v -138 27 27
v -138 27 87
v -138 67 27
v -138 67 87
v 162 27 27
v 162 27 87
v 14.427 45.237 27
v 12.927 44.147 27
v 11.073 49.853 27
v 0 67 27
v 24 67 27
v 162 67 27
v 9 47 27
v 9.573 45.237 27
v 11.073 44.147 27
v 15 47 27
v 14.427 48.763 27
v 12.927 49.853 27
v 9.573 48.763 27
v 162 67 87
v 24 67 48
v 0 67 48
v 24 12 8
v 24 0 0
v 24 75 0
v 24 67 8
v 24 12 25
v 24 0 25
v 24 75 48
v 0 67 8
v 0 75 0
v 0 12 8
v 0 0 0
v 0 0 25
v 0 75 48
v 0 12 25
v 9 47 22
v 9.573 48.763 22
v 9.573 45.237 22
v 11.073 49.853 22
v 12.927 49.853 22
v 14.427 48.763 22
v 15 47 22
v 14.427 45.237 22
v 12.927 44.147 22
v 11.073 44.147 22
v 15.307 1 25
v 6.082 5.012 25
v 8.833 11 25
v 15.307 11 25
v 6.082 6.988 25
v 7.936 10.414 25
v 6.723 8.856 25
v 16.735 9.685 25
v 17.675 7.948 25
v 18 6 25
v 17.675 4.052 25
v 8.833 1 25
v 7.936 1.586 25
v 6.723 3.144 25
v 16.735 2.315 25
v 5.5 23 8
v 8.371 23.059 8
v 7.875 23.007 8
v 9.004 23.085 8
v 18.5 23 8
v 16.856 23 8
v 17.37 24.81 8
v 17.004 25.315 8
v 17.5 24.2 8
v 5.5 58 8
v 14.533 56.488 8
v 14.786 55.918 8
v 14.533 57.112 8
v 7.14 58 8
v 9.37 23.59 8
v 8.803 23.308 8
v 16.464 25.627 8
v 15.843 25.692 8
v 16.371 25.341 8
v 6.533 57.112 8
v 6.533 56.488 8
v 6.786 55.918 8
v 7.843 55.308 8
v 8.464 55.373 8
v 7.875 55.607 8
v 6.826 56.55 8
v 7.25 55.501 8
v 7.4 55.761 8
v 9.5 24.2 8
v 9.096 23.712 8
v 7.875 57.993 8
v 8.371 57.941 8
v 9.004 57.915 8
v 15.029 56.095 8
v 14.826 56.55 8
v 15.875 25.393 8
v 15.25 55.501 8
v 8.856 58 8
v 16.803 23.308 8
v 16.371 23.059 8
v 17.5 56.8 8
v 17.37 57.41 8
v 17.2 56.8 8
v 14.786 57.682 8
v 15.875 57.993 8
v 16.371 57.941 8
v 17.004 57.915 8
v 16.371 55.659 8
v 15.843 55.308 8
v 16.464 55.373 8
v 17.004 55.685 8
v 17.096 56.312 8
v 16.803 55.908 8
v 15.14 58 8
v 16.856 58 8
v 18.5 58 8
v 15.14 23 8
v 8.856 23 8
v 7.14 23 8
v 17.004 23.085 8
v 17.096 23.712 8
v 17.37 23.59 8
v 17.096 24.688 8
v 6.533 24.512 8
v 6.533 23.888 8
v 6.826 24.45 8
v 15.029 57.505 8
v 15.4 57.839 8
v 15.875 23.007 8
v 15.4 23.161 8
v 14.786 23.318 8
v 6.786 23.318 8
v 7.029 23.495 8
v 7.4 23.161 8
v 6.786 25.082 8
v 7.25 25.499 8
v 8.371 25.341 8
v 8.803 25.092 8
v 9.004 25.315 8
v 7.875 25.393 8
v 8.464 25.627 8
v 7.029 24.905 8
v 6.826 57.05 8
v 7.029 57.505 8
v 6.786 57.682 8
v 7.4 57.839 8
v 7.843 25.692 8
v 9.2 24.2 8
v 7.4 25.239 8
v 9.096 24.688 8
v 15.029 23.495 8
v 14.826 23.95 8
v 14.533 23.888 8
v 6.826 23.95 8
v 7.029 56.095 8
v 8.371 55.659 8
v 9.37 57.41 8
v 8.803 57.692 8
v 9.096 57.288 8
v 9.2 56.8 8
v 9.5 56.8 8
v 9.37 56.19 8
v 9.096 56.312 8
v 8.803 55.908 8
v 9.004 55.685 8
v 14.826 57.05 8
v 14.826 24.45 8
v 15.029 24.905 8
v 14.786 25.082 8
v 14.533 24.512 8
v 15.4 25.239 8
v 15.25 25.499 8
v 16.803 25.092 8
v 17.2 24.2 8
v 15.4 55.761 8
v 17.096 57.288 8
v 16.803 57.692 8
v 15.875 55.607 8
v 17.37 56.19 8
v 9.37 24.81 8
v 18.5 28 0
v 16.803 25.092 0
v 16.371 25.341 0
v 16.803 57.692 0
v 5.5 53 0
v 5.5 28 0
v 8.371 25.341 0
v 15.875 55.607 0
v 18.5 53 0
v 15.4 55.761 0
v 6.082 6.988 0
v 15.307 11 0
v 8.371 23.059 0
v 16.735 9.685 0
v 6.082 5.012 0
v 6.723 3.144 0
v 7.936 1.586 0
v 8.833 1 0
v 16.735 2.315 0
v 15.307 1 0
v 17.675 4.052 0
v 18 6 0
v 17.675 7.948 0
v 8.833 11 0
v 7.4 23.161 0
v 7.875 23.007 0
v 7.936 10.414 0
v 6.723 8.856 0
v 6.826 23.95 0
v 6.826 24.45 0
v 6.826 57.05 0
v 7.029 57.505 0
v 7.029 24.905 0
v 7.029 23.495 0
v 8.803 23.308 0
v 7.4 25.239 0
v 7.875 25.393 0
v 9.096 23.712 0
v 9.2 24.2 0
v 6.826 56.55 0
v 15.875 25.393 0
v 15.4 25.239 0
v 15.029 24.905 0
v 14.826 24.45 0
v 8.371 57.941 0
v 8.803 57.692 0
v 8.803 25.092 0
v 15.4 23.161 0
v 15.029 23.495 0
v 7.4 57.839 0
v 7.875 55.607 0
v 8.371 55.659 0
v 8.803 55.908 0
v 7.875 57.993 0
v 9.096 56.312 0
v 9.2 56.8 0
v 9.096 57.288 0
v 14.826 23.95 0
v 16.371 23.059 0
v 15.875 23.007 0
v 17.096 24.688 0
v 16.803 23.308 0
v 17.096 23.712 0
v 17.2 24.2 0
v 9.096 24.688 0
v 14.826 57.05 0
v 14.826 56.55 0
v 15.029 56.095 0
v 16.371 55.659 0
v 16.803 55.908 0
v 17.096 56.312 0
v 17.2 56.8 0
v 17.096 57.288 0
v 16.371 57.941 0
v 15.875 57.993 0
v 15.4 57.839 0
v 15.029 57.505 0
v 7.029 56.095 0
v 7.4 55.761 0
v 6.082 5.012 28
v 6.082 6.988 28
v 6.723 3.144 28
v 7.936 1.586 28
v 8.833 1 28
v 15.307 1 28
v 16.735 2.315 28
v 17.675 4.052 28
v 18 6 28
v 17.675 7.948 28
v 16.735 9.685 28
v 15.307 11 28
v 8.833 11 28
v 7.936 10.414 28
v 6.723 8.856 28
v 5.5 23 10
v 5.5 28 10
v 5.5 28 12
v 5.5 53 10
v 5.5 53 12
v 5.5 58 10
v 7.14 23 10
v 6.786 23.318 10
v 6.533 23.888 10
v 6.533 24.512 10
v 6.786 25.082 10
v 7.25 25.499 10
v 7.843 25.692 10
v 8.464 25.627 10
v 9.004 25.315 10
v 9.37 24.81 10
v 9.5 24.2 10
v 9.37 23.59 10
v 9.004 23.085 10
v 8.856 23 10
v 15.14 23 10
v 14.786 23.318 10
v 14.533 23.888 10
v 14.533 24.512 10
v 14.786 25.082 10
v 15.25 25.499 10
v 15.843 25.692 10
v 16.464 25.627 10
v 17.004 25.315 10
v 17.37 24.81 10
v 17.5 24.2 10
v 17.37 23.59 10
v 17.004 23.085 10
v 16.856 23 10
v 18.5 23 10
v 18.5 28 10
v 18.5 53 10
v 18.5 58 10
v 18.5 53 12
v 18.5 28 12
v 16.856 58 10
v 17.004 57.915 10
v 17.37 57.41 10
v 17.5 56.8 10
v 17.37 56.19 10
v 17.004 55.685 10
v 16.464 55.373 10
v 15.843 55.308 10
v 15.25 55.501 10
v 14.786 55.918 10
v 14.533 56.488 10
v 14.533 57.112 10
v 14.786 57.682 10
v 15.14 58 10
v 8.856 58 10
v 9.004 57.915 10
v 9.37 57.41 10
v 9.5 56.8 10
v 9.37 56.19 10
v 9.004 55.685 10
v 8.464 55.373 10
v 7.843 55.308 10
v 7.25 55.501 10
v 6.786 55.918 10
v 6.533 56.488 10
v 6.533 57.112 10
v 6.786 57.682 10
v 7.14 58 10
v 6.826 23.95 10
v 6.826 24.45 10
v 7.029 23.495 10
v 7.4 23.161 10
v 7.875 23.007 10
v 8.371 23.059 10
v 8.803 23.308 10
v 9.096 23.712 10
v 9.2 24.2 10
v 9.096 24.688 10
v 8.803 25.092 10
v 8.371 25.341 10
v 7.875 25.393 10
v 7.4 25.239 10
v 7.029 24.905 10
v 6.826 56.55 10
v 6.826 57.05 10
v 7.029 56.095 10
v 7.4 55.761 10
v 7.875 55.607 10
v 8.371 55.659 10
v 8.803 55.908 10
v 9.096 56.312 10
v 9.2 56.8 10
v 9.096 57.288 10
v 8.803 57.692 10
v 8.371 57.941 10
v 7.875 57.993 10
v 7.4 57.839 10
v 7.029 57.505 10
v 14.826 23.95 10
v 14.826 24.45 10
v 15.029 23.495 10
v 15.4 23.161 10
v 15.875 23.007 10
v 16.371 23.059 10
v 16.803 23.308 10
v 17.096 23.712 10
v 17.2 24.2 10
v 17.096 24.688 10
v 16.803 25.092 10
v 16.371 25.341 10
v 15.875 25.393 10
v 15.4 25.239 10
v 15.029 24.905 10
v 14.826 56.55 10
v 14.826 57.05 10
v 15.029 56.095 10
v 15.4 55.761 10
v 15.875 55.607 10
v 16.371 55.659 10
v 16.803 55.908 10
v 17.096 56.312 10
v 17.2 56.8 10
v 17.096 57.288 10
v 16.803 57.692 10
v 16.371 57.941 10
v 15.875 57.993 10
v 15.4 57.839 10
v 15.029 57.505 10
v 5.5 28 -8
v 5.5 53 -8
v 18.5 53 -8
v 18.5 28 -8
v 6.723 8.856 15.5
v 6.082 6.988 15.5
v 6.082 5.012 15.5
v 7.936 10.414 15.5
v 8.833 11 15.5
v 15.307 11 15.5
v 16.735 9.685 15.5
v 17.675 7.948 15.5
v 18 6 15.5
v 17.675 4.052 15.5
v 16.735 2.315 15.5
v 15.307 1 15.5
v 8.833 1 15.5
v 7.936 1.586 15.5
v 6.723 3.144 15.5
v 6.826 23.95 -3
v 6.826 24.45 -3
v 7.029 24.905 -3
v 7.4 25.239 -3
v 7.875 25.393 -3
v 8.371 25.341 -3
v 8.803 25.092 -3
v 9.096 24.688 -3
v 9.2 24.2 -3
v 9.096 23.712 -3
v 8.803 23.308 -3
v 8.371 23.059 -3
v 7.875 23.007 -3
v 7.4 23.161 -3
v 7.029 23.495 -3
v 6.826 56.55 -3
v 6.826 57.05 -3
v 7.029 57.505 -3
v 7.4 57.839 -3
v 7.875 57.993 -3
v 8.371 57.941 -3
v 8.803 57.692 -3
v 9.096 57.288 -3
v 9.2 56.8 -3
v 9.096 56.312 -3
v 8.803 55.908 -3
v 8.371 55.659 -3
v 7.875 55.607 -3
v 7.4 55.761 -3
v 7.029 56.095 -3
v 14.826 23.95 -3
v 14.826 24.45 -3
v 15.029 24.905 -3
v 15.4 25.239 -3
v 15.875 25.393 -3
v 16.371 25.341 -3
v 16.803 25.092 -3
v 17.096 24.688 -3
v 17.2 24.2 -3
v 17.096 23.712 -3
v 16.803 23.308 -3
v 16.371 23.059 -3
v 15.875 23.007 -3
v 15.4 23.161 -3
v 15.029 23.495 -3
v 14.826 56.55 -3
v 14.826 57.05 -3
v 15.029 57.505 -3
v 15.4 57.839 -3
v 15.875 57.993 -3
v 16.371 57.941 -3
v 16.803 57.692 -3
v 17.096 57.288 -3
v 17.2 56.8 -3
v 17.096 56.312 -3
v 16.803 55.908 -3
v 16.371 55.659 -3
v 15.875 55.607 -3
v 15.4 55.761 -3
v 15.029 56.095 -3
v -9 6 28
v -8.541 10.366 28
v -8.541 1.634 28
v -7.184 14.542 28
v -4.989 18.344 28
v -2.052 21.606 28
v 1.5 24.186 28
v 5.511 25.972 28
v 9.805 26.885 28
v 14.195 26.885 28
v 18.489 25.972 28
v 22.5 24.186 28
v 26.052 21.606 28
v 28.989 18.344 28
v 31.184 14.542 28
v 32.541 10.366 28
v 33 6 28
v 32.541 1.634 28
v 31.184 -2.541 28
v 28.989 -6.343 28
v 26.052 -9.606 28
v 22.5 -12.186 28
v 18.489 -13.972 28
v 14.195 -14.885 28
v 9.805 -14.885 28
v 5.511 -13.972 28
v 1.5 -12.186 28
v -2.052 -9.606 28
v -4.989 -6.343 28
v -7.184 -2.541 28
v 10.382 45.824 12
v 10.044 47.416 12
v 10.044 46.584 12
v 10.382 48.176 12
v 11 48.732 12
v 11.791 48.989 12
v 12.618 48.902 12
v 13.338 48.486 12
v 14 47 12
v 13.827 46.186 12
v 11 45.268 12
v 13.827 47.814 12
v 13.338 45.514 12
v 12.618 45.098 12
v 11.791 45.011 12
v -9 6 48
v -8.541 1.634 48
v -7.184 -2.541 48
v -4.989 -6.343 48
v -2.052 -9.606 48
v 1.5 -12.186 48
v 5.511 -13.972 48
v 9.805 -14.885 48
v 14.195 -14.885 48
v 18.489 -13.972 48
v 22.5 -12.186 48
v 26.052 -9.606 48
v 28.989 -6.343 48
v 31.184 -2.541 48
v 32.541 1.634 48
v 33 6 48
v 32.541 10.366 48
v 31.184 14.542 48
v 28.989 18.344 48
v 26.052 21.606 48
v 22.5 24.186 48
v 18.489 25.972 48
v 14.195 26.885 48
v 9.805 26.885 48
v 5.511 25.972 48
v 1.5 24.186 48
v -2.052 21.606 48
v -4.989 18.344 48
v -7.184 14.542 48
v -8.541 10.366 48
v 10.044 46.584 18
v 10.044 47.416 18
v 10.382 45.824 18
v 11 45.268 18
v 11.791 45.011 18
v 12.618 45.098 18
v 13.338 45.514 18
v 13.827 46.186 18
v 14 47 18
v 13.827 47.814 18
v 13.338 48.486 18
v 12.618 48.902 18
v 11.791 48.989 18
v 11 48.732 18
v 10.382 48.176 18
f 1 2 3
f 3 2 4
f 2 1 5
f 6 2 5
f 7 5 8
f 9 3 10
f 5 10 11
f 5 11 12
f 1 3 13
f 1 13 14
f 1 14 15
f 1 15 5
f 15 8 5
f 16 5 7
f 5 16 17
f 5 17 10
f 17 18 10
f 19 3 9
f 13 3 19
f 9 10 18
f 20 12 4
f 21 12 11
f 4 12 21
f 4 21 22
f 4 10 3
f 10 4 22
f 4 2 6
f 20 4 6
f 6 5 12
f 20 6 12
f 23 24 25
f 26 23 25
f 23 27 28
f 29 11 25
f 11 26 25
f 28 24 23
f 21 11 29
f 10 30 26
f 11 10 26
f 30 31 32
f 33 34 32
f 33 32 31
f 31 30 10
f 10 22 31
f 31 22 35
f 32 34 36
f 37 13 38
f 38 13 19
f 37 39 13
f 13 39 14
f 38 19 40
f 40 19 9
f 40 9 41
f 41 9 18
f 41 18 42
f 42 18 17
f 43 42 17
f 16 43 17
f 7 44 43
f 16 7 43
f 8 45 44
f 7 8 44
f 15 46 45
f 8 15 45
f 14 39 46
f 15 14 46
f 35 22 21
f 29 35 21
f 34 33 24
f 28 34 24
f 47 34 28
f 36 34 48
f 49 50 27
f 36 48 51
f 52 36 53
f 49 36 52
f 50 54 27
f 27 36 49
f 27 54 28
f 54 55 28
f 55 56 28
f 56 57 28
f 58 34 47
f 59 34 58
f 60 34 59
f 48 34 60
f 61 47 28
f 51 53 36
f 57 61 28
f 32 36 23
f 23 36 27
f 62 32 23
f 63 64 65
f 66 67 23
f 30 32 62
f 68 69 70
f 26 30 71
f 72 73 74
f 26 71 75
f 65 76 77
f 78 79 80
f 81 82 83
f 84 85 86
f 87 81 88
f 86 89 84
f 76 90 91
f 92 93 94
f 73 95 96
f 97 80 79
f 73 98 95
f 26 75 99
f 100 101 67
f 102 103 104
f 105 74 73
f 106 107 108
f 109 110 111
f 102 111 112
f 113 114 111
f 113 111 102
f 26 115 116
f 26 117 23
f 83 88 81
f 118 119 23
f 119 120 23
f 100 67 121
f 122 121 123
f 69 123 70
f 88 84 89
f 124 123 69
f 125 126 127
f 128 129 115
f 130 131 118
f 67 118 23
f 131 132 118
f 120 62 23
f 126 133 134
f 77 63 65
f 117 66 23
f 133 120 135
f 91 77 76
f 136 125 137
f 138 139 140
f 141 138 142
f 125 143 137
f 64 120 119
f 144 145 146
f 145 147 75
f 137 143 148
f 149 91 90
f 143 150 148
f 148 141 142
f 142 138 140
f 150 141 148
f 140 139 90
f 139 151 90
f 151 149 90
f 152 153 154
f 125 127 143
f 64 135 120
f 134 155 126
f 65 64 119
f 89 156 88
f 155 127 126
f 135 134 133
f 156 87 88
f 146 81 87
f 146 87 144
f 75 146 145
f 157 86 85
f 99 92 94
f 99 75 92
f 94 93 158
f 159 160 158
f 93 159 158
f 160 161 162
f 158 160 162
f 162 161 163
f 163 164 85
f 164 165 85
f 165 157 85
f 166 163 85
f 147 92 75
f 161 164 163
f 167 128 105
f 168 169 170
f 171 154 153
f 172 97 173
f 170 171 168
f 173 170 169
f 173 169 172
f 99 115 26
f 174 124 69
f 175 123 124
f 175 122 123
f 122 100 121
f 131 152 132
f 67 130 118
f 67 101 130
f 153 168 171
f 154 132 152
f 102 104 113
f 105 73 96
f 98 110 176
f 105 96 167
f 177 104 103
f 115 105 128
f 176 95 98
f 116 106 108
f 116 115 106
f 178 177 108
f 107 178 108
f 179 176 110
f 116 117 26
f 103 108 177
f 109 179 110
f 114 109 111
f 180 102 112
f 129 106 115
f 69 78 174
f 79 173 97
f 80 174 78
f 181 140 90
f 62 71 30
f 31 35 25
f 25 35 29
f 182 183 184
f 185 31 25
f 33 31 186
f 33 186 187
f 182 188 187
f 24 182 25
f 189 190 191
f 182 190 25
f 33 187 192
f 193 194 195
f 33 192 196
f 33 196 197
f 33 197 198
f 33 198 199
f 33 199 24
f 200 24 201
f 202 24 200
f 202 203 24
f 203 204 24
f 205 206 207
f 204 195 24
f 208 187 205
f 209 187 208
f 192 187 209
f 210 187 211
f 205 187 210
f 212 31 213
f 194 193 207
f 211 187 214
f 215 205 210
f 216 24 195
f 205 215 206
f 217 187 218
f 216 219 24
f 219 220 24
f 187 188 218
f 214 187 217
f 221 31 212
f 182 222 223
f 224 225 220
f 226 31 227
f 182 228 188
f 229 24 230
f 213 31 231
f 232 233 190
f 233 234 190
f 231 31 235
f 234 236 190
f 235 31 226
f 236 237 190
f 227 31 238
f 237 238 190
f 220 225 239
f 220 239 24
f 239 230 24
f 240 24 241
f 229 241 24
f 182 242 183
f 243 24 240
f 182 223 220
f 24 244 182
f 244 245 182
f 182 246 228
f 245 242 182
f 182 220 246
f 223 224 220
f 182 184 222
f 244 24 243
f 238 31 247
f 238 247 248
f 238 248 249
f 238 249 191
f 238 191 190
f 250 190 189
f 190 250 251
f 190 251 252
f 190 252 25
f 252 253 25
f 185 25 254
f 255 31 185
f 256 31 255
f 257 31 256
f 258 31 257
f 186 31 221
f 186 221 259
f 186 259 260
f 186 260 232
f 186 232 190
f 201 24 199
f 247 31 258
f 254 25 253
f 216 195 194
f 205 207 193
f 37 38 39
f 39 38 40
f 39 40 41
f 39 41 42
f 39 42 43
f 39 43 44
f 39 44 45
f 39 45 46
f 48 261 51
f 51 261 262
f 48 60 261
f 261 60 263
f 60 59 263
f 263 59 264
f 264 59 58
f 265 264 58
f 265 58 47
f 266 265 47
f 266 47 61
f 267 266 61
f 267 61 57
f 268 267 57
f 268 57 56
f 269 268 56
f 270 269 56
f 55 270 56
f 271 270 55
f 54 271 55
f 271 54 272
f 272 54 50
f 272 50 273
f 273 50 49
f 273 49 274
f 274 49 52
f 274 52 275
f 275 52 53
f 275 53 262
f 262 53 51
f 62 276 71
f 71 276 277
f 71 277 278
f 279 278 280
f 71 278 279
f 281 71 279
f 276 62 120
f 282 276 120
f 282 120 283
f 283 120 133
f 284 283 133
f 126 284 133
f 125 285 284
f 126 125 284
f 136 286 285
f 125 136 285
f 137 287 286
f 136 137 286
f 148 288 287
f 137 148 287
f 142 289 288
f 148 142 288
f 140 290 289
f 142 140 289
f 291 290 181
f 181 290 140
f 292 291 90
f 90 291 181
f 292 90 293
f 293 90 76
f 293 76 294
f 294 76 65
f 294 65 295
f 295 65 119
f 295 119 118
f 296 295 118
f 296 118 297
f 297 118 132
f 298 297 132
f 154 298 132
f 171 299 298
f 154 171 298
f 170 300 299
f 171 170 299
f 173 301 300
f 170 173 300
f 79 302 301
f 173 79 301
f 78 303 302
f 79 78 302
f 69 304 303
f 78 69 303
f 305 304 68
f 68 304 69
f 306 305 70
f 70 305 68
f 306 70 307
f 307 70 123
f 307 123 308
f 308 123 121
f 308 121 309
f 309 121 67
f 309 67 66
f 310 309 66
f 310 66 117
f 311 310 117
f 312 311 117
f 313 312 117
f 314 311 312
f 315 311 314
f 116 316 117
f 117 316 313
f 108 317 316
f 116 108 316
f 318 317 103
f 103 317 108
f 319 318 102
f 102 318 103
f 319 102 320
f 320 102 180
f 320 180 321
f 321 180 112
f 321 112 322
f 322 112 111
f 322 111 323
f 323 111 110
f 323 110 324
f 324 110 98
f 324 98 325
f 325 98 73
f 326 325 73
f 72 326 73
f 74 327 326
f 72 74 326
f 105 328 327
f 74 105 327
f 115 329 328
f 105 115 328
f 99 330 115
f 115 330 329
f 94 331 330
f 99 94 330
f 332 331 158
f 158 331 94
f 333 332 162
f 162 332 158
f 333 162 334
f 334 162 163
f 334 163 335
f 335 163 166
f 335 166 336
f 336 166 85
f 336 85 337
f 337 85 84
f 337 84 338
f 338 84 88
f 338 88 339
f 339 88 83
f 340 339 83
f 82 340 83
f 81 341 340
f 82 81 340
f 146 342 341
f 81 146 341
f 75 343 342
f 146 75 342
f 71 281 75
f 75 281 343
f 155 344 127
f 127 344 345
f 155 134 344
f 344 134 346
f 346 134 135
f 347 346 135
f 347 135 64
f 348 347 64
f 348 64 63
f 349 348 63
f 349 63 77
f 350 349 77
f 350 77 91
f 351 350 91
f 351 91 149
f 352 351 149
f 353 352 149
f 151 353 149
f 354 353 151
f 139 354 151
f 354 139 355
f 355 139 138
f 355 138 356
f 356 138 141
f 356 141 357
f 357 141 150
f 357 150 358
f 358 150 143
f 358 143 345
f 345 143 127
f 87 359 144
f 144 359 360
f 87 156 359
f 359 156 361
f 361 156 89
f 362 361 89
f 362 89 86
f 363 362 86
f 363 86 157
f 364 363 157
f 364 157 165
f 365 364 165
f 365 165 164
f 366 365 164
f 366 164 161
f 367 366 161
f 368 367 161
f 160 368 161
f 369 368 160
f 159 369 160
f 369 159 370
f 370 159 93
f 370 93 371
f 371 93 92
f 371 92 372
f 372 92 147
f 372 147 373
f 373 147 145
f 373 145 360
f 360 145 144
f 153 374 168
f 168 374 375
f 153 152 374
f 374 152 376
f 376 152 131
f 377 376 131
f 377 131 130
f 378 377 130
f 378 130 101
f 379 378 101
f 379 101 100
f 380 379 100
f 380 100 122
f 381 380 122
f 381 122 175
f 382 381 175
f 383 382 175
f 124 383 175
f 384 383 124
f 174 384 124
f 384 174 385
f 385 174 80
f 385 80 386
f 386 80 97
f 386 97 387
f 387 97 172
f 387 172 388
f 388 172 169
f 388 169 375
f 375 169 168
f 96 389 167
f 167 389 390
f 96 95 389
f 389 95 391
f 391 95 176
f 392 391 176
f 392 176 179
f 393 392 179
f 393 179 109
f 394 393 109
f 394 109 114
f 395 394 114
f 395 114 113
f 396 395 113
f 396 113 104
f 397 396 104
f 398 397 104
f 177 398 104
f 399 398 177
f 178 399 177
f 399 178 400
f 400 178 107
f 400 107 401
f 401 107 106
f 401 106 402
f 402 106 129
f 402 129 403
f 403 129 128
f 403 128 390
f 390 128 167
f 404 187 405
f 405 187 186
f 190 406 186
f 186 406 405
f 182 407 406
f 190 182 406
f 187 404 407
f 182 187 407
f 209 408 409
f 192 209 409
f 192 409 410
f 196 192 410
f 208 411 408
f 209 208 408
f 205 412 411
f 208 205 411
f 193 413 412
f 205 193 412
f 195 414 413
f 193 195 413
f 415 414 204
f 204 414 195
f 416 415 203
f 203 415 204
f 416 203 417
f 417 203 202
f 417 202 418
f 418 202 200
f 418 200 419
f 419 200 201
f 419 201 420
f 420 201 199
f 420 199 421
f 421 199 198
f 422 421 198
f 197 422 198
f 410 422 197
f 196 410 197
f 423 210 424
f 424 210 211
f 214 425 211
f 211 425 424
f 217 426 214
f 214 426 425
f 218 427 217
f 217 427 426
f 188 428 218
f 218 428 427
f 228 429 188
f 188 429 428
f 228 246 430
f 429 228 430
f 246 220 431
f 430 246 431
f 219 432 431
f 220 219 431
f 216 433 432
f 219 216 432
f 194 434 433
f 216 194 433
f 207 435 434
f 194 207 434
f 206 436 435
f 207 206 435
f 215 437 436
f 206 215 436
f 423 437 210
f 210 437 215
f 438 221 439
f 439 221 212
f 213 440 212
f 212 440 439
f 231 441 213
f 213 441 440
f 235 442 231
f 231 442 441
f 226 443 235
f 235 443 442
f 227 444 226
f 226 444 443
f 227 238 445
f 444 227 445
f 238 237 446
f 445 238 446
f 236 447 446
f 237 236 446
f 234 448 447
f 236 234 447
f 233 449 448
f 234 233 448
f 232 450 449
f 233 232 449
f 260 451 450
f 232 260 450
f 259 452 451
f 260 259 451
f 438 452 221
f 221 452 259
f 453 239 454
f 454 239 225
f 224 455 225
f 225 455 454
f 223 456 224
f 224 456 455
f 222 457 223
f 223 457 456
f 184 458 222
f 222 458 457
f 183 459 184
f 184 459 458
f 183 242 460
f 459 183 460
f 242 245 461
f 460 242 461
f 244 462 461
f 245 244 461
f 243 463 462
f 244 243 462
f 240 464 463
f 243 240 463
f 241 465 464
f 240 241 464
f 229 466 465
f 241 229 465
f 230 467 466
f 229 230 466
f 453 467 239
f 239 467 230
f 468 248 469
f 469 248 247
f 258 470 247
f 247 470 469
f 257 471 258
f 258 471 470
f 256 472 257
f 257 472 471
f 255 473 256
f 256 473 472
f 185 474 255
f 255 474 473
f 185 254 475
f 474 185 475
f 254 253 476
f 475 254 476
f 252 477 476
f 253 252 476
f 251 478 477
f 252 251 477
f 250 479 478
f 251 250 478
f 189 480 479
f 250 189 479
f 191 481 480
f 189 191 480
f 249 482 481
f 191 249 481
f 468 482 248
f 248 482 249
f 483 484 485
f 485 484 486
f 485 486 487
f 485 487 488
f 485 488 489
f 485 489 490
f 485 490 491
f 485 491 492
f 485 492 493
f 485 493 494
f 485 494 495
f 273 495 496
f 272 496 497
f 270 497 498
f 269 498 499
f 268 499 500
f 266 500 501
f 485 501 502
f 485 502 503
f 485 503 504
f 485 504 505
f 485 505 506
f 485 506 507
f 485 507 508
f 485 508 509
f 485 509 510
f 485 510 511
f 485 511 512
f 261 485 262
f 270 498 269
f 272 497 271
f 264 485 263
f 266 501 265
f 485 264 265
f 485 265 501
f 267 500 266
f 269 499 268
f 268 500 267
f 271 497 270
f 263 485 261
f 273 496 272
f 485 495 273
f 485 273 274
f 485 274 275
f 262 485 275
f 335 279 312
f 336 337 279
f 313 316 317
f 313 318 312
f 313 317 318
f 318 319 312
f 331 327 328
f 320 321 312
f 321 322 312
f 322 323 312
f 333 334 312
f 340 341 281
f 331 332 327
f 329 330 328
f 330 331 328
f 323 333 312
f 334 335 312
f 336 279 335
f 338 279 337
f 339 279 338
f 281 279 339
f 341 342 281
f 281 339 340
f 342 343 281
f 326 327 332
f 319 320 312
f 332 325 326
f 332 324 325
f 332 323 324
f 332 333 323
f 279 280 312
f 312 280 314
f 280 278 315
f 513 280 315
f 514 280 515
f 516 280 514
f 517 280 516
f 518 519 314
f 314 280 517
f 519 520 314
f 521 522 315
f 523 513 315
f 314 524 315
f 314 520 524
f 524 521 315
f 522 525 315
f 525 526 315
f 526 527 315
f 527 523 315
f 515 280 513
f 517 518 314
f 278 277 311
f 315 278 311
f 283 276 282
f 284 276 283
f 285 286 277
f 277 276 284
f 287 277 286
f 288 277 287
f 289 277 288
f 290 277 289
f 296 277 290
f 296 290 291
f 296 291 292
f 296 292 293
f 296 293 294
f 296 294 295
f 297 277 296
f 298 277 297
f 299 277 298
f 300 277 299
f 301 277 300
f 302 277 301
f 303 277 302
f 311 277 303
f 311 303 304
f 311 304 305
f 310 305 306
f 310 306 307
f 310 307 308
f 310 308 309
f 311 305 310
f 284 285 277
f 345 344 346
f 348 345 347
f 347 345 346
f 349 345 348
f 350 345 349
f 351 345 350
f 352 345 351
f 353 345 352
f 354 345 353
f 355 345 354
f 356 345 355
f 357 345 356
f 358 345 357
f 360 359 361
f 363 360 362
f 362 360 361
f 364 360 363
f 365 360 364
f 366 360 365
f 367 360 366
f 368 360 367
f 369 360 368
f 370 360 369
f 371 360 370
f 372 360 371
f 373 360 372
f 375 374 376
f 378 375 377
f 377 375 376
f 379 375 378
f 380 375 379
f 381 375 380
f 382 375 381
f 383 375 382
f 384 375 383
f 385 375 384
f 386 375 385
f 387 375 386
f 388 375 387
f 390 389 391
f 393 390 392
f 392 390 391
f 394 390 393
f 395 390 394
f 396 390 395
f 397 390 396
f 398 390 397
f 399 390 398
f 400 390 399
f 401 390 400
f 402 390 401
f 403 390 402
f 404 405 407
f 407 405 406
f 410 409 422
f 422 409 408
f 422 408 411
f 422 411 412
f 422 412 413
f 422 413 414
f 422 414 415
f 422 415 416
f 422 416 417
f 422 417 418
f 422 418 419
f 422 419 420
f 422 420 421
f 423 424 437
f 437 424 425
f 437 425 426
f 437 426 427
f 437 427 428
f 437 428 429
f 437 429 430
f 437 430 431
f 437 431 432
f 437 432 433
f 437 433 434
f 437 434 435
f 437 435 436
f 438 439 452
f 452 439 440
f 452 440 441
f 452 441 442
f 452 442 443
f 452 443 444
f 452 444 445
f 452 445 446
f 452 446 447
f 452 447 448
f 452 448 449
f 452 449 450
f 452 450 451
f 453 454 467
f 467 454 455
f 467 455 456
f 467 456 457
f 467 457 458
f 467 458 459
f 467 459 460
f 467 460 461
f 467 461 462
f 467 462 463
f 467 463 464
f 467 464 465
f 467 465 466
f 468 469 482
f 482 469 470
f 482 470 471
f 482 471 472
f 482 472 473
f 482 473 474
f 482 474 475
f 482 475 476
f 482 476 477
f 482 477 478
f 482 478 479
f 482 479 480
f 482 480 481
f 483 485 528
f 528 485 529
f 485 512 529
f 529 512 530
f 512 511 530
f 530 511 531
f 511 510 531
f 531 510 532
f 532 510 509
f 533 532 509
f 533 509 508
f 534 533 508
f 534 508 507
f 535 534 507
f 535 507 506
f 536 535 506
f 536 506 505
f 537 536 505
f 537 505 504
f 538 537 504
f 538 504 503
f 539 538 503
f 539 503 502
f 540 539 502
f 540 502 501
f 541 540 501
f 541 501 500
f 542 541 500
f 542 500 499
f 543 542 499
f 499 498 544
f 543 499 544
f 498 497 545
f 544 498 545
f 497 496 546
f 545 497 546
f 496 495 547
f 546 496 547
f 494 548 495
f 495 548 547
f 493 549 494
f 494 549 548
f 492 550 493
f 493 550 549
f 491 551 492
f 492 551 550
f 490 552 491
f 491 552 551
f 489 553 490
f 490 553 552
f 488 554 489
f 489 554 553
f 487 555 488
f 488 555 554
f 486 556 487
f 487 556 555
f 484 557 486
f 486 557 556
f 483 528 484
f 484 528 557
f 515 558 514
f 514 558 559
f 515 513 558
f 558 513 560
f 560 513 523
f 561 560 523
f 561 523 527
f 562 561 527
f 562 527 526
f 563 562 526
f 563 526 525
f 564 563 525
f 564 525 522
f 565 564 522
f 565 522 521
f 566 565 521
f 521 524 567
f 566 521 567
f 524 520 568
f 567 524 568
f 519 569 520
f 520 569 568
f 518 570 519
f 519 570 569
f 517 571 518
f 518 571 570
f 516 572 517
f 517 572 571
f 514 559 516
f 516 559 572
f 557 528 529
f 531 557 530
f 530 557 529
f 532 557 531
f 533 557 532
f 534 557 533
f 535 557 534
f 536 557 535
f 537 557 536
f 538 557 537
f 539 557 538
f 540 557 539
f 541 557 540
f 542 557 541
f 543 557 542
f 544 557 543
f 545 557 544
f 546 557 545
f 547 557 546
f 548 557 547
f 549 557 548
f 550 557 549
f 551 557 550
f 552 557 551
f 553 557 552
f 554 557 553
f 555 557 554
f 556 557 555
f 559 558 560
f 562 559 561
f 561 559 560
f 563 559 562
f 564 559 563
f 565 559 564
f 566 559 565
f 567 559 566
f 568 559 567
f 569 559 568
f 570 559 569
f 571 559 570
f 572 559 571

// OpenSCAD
//
// settings
//
show_extras = true;

motor_mountsize_x = 24;
motor_mountsize_y = 12;
motor_mountsize_z = 25;

motor_diameter = 12;
motor_flat = 10;

track_width = 40;

tire_diameter = 42;
tire_height = 20;
motor_offset_z = 3;
motor_height = 12;

undercarrage_thickness = 8; // does not scale well
undercarrage_length = track_width - motor_mountsize_y/2 + tire_diameter/2;

support_beem_thickness = 8;

// 
resolution = 15;

module motor_slot(slot_height) {
	intersection() {
		cylinder(r = motor_diameter/2, h = slot_height+1, center = true);
			cube([motor_diameter, motor_flat,motor_mountsize_z+1], center=true);
	}
}


module servo(screwlength) {

	mountingplate_hole_offset_x = -.3;
	mountingplate_hole_offset_y = 1;
	mountingplate_hole_diameter = 3;

	servo_width = 13;
	servo_length = 25;
	servo_height = 20;

	mountingplate_height = 2;
	mountingplate_legnth = servo_length + 10;
	mountingplate_width = servo_width;

	servo_axel_offset = 6;
	servo_axel_height = 6;

	servo_top_height = 2;
	translate([0,-servo_length/2+servo_axel_offset,-servo_height/2+mountingplate_height+servo_top_height]) {
		union() {
			//gearbox
			cube([servo_width, servo_length, servo_height], center = true);
			
			//mounting plate
			translate([0,0,servo_height/2-mountingplate_height/2-servo_top_height]) {
				difference() {
					cube([mountingplate_width, mountingplate_legnth, mountingplate_height], center = true);
					translate([mountingplate_width/2-mountingplate_hole_diameter/2 - mountingplate_hole_offset_y,mountingplate_legnth/2-mountingplate_hole_diameter/2 - mountingplate_hole_offset_x,0])
						cylinder(r=mountingplate_hole_diameter/2, h=mountingplate_height+1, center=true, $fn=resolution);
					translate([-(mountingplate_width/2-mountingplate_hole_diameter/2 - mountingplate_hole_offset_y),mountingplate_legnth/2-mountingplate_hole_diameter/2 - mountingplate_hole_offset_x,0])
						cylinder(r=mountingplate_hole_diameter/2, h=mountingplate_height+1, center=true, $fn=resolution);
					translate([mountingplate_width/2-mountingplate_hole_diameter/2 - mountingplate_hole_offset_y,-(mountingplate_legnth/2-mountingplate_hole_diameter/2 - mountingplate_hole_offset_x),0])
						cylinder(r=mountingplate_hole_diameter/2, h=mountingplate_height+1, center=true, $fn=resolution);
					translate([-(mountingplate_width/2-mountingplate_hole_diameter/2 - mountingplate_hole_offset_y),-(mountingplate_legnth/2-mountingplate_hole_diameter/2 - mountingplate_hole_offset_x),0])
						cylinder(r=mountingplate_hole_diameter/2, h=mountingplate_height+1, center=true, $fn=resolution);
				}
				translate([mountingplate_width/2-mountingplate_hole_diameter/2 - mountingplate_hole_offset_y,mountingplate_legnth/2-mountingplate_hole_diameter/2 - mountingplate_hole_offset_x,mountingplate_height/2-screwlength/2])
					cylinder(r=mountingplate_hole_diameter/2*.8, h=screwlength, center=true, $fn=resolution);
				translate([-(mountingplate_width/2-mountingplate_hole_diameter/2 - mountingplate_hole_offset_y),mountingplate_legnth/2-mountingplate_hole_diameter/2 - mountingplate_hole_offset_x,mountingplate_height/2-screwlength/2])
					cylinder(r=mountingplate_hole_diameter/2*.8, h=screwlength, center=true, $fn=resolution);
				translate([mountingplate_width/2-mountingplate_hole_diameter/2 - mountingplate_hole_offset_y,-(mountingplate_legnth/2-mountingplate_hole_diameter/2 - mountingplate_hole_offset_x),mountingplate_height/2-screwlength/2])
					cylinder(r=mountingplate_hole_diameter/2*.8, h=screwlength, center=true, $fn=resolution);
				translate([-(mountingplate_width/2-mountingplate_hole_diameter/2 - mountingplate_hole_offset_y),-(mountingplate_legnth/2-mountingplate_hole_diameter/2 - mountingplate_hole_offset_x),mountingplate_height/2-screwlength/2])
					cylinder(r=mountingplate_hole_diameter/2*.8, h=screwlength, center=true, $fn=resolution);

			}

			//Shaft

			translate([0,servo_length/2 - servo_axel_offset,servo_height/2+servo_axel_height/2]) {
				cylinder(r=2,h=6, center = true, $fn=resolution);
			}
		}
	}
}

module _tire() {
	cylinder(r=tire_diameter/2,h=tire_height);
}


module _track() {
	translate([0,track_width/2,30]){
		cube([300,track_width,60], center = true);
		translate([0,0,-30]) {
			cylinder(r=3, h=10, center=true);
		}
	}
}


module undercarrage() {
	boltsize = 5;
	difference() {
		cube([motor_mountsize_x,undercarrage_length,undercarrage_thickness]);
		// the +.00001 is a hack to prevent the difference 
		translate([motor_mountsize_x/2,undercarrage_length - track_width/2,undercarrage_thickness+.1]){
			servo(undercarrage_thickness+boltsize);
		}
	}
	if (show_extras){
		translate([motor_mountsize_x/2,undercarrage_length - track_width/2,undercarrage_thickness]){
			color("green", 0.5) servo(undercarrage_thickness+boltsize);
		}
	}
}
module support_beem () {
	cube([motor_mountsize_x,support_beem_thickness,motor_mountsize_z+motor_offset_z+tire_height]);
}

module blinds_mount()
{
	translate([motor_mountsize_x/2, motor_mountsize_y/2, motor_mountsize_z/2]) {
		difference() {
			cube([motor_mountsize_x,motor_mountsize_y,motor_mountsize_z], center = true);
			motor_slot(motor_mountsize_z);
		}
		if (show_extras) {
			translate([0,0,motor_offset_z+(motor_mountsize_z-motor_height)/2]) {
				color("blue",0.5) motor_slot(motor_height);
			}
		}
	}
	translate([0,motor_mountsize_y,0]) {
		undercarrage();
	}
	translate([0,undercarrage_length+motor_mountsize_y,0]) {
		support_beem();
	}

	if (show_extras) {
		
		translate([motor_mountsize_x/2,motor_mountsize_y/2,motor_mountsize_z+motor_offset_z]) {
			color("blue",0.5) _tire();
		}
		translate([motor_mountsize_x/2,motor_mountsize_y/2+tire_diameter/2,2+motor_mountsize_z]) {
			color("white",0.5) _track();
		}
	}

}

blinds_mount();


// undercarrage();

// servo(10);
